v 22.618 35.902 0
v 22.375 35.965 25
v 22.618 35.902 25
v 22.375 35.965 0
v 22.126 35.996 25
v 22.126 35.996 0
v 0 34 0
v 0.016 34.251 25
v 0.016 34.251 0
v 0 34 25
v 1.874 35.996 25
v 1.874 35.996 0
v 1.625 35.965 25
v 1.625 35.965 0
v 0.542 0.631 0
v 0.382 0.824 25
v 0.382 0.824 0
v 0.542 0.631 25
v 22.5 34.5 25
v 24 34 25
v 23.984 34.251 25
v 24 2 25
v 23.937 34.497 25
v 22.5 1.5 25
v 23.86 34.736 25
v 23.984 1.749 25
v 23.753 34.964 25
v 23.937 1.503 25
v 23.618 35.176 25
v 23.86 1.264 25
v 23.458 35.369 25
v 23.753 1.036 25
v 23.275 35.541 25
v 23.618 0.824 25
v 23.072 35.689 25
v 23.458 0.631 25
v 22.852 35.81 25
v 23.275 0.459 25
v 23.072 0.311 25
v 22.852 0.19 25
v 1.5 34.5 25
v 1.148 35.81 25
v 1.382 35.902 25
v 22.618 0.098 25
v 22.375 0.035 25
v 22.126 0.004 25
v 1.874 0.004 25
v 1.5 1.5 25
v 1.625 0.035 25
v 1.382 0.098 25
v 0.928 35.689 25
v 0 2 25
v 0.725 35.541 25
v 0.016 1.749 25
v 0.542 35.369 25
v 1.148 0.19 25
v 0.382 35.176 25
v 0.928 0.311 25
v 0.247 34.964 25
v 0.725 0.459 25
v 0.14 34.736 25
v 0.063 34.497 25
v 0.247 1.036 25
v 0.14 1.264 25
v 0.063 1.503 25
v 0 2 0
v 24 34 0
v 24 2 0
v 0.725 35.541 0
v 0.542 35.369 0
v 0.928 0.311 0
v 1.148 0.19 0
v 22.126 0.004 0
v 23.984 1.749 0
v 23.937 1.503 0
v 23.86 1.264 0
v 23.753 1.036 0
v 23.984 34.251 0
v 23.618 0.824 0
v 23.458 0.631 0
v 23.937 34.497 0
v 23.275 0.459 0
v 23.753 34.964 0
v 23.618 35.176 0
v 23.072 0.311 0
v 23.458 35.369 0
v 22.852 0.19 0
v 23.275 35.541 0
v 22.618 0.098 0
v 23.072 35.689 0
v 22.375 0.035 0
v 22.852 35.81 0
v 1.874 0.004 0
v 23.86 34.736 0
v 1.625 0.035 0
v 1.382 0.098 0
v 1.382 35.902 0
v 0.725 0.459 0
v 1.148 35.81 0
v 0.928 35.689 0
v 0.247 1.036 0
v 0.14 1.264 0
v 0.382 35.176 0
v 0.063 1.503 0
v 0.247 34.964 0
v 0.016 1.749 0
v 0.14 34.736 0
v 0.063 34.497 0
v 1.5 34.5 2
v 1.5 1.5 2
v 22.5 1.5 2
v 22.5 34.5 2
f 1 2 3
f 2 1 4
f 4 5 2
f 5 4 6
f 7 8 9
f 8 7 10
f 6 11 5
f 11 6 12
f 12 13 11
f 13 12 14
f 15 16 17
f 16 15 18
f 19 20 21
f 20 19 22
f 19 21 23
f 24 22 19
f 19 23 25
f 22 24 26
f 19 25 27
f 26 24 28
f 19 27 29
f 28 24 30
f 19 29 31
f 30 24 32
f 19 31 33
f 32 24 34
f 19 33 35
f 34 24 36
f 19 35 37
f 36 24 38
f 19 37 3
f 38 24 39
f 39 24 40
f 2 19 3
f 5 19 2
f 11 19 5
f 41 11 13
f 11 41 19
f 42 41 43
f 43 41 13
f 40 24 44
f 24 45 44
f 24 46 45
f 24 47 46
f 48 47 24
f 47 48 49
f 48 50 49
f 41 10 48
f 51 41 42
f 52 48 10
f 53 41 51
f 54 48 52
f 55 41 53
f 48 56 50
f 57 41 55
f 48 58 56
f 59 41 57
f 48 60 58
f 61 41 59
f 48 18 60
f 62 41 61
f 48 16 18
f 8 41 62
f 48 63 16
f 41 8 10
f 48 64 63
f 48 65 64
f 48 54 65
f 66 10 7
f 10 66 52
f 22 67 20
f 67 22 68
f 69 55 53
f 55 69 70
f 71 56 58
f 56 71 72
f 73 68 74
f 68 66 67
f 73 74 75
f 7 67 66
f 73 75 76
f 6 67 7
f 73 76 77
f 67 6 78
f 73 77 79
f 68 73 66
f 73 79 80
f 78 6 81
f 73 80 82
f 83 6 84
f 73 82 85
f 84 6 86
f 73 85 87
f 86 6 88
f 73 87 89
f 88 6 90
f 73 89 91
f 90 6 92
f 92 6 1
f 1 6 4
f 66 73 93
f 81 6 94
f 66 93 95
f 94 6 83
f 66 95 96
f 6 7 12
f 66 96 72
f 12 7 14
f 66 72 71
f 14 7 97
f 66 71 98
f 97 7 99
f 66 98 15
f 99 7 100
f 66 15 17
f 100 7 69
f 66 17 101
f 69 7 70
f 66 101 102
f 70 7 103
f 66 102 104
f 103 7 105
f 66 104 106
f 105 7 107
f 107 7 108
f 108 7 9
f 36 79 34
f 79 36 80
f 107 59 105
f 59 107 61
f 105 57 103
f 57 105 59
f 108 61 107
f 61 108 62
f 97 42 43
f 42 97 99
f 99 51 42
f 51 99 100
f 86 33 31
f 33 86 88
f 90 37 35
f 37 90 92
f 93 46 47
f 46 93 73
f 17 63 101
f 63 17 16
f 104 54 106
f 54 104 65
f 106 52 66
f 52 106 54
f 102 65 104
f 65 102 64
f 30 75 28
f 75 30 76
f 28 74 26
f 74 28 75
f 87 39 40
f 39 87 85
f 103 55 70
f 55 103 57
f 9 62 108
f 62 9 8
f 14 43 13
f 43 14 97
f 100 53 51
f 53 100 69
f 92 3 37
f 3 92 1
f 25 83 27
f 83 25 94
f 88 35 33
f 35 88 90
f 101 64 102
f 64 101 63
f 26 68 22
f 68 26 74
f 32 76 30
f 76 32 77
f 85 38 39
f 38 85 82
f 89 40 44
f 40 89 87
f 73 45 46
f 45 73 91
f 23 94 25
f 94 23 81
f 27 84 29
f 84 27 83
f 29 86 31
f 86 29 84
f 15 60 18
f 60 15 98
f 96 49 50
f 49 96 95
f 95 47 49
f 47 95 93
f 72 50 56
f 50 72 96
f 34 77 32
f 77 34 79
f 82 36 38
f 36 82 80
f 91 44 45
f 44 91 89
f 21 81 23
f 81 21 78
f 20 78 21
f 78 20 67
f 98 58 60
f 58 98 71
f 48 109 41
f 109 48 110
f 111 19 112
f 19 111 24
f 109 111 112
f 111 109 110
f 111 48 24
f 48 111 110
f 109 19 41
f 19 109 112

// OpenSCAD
length = 24;
width = 36;
height = 25;
floorThickness = 2;
wallThickness = 1.5;

difference() {    
    $fn=50;
    minkowski()
    {
      translate([2,2,0])
        cube([length-4, width-4, height - 1]);
      cylinder(r=2,h=1);
    }
    
    //cube([length, width, height]);
    translate([wallThickness, wallThickness, floorThickness])
        cube([length - wallThickness * 2, width - wallThickness * 2, height - floorThickness]);
}
